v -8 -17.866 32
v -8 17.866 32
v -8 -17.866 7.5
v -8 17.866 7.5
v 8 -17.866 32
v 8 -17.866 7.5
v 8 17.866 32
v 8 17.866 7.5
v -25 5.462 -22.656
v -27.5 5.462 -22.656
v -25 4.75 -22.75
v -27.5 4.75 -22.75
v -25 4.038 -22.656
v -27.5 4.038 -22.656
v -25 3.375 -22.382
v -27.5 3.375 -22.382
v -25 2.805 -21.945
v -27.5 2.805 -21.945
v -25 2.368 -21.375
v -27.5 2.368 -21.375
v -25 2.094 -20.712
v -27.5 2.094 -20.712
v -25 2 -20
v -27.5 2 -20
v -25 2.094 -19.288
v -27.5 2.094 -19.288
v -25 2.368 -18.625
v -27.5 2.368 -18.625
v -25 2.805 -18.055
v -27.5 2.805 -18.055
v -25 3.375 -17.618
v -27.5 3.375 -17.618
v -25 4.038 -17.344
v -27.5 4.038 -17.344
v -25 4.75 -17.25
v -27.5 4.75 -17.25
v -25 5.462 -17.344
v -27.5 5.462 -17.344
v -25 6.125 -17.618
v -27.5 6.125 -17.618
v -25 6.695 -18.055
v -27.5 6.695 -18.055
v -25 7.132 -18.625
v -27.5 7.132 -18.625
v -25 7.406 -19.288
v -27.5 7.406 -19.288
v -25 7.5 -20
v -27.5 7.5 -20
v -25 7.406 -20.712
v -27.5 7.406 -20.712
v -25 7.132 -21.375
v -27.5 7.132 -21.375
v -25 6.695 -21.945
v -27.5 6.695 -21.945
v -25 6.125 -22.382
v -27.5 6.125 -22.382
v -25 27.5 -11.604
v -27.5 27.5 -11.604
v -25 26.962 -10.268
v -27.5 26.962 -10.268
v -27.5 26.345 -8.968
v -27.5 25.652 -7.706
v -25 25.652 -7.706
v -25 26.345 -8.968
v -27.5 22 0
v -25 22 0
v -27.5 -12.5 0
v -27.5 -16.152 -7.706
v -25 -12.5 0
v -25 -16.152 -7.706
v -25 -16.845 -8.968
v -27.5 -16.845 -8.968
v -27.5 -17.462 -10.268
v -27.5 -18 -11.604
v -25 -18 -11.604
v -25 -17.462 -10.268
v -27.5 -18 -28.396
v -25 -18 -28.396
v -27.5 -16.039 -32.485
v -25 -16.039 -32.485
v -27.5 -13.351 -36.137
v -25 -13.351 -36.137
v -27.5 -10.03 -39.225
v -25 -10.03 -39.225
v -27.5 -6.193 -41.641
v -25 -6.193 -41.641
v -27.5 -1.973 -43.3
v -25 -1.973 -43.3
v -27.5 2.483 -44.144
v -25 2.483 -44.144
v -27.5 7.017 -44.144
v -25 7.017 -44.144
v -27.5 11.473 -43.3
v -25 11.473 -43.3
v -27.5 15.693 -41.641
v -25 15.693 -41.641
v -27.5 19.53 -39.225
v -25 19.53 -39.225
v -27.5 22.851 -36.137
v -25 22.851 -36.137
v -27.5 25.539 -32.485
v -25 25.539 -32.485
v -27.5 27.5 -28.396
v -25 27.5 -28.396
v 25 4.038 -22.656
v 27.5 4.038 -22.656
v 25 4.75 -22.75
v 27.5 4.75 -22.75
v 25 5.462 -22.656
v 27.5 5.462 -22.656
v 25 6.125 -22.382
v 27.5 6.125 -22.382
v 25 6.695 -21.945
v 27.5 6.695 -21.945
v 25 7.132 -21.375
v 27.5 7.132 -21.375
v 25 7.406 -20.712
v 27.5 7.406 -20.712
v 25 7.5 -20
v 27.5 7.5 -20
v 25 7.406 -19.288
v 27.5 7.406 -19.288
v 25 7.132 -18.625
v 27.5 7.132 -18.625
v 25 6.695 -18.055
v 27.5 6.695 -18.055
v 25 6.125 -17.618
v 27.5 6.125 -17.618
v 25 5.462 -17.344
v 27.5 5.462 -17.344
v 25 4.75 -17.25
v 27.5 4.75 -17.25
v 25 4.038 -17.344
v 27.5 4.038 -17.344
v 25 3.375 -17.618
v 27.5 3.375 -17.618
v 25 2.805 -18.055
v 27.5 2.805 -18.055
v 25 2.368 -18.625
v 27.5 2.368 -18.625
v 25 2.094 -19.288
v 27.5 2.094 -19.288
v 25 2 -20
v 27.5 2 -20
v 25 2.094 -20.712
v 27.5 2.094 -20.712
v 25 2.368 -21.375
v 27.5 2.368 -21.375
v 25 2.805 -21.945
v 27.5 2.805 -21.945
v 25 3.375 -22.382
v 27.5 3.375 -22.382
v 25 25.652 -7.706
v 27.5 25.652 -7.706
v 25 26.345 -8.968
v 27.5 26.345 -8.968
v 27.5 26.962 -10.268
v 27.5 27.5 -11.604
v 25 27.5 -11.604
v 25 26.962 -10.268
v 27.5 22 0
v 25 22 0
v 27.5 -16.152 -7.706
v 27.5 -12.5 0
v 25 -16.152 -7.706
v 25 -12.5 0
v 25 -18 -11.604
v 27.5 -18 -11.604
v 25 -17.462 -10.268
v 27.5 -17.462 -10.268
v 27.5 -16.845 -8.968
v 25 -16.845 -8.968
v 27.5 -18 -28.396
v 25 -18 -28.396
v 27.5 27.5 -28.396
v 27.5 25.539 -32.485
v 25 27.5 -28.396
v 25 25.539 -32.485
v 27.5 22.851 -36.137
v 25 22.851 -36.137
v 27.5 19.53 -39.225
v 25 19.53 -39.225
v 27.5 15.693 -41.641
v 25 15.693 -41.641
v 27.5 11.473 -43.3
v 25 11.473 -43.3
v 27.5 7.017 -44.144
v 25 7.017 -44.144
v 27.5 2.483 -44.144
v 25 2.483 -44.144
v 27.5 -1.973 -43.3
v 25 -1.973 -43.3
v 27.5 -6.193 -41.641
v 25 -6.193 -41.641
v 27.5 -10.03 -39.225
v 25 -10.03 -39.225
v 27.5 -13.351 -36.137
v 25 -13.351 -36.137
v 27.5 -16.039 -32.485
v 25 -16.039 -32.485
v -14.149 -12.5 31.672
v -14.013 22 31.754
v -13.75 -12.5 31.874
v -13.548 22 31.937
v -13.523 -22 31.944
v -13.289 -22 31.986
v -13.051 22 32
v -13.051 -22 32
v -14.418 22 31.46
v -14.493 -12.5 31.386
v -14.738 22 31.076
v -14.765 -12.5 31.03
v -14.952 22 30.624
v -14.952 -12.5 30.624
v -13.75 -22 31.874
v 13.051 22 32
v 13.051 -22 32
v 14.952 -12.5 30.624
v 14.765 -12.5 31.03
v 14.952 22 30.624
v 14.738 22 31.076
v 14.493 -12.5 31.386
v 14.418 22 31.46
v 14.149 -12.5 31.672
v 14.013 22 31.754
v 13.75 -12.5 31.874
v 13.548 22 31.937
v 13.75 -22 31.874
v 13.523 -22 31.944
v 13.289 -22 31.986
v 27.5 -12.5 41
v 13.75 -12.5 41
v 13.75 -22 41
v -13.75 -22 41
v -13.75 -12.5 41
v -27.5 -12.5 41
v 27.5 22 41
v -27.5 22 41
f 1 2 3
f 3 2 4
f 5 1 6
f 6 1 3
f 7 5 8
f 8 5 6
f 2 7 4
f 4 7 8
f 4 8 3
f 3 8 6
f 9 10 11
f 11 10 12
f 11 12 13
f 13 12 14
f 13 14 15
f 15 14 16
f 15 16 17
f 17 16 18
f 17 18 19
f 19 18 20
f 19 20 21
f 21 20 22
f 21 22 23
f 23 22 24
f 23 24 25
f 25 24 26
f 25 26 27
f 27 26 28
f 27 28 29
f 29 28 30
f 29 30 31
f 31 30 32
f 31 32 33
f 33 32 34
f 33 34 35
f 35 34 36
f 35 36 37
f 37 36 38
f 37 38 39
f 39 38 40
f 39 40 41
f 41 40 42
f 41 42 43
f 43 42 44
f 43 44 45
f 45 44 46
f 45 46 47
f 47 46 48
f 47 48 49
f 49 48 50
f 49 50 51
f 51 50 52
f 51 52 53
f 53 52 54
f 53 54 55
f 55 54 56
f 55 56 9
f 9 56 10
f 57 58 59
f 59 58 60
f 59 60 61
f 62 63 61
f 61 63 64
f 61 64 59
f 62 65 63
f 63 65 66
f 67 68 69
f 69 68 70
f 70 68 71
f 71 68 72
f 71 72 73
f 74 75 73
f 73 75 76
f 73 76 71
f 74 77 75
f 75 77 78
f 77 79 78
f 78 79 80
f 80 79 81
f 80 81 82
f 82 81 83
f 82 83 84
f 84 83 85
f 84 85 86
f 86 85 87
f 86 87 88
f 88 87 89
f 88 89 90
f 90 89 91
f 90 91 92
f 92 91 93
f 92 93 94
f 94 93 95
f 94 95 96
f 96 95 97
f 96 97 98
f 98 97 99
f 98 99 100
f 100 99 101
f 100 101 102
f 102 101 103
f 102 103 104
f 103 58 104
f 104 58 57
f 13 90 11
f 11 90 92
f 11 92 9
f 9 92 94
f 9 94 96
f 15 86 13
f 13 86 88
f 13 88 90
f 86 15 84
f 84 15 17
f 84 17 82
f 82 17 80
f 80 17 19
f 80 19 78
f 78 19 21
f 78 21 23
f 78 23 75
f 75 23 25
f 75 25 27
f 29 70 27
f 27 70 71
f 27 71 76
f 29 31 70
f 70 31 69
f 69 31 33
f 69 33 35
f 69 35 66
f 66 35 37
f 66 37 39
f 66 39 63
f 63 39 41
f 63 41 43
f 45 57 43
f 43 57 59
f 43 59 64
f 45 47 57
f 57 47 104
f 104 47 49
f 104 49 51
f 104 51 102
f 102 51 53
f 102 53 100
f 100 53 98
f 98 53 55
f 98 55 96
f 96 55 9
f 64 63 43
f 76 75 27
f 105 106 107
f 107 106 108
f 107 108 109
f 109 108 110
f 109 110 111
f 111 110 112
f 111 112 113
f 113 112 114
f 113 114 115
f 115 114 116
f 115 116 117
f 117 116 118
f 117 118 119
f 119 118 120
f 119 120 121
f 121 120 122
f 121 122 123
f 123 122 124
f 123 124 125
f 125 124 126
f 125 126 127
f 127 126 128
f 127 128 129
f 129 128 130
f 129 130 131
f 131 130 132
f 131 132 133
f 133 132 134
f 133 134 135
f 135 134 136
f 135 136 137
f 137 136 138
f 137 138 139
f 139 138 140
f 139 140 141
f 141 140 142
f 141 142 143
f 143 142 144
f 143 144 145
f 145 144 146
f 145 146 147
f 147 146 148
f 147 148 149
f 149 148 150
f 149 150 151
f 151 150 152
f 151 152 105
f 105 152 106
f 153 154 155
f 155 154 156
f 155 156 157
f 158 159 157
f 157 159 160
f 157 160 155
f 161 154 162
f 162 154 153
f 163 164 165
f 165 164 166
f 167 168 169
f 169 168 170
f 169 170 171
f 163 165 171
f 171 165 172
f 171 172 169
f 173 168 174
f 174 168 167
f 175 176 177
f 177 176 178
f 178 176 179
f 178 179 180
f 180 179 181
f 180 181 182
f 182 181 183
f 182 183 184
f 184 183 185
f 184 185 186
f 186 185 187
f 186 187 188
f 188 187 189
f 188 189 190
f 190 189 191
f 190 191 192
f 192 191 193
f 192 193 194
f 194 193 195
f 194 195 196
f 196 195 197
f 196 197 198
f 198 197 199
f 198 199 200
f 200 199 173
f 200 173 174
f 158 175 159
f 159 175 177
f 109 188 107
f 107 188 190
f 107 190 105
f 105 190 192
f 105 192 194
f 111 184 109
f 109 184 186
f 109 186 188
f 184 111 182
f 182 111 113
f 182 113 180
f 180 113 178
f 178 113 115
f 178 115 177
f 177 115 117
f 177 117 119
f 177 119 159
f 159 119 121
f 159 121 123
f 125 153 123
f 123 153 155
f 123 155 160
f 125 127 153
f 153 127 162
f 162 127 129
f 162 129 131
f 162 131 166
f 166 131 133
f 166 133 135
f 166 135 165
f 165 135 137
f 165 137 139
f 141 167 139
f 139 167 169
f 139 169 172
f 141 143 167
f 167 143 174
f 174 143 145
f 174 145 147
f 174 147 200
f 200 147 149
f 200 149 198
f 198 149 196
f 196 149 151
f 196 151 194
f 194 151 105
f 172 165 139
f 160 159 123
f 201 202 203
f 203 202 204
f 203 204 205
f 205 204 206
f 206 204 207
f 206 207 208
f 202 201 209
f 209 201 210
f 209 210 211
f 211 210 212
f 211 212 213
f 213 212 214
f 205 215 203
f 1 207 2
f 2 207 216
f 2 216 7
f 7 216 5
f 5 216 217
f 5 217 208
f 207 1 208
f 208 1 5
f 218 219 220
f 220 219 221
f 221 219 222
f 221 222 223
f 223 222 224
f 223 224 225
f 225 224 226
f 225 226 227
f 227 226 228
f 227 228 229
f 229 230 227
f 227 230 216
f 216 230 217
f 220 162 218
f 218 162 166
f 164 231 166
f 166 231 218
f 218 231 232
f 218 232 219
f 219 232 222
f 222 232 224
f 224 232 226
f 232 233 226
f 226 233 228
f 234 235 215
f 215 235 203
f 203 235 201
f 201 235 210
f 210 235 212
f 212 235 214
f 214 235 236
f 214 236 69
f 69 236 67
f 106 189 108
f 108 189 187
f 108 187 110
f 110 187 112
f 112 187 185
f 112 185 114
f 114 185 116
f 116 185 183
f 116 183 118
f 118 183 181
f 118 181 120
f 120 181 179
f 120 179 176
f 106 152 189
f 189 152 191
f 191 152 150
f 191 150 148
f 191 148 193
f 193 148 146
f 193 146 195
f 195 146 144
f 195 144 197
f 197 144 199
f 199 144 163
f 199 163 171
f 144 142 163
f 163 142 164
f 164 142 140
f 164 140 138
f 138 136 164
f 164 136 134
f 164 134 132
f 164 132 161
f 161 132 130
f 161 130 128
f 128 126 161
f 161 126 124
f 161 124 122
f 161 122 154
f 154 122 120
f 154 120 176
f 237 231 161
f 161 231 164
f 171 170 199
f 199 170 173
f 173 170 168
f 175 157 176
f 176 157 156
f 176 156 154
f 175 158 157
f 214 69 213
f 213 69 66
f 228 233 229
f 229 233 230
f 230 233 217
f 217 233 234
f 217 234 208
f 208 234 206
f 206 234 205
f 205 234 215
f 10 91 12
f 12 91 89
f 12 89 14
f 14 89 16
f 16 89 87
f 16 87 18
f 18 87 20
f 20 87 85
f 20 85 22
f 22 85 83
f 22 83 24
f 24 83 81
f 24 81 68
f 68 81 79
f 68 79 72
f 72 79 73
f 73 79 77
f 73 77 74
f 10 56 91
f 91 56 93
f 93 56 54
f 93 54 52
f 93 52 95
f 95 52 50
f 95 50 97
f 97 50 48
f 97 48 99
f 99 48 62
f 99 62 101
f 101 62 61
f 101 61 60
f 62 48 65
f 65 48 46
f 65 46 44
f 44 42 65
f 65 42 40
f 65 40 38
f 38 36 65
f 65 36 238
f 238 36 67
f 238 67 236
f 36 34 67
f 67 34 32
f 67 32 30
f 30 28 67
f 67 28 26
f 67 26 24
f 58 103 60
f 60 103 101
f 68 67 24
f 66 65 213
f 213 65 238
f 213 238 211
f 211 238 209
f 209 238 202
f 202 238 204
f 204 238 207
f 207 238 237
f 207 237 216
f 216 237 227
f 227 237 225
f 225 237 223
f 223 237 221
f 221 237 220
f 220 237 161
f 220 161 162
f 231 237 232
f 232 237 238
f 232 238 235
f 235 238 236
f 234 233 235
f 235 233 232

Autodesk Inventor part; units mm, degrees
sketch "Sketch1" plane through (0, 0, 0) normal (0, 0, 1) x (1, 0, 0)
  line L0 (-27.5, 22) -> (27.5, 22)
  line L1 (27.5, 22) -> (27.5, -22)
  line L2 (27.5, -22) -> (-27.5, -22)
  line L3 (-27.5, -22) -> (-27.5, 22)
  line L4 (-27.5, 22) -> (27.5, -22) construction
  line L5 (27.5, 22) -> (-27.5, -22) construction
  point P0 (0, 0)
  dimension "d0" = 55
  dimension "d1" = 44
extrude "Extrusion1" add sketch "Sketch1" along normal blind 41
ref_plane "Work Plane2" through (-27.5, 22, 41) normal (0, 1, 0) x (1, 0, 0)
sketch "Sketch4" plane through (-27.5, 22, 41) normal (0, 1, 0) x (1, 0, 0)
  line L0 (42, 9) -> (13, 9)
  line L1 (2.5, 41) -> (13, 9)
  line L2 (42, 9) -> (52.5, 41)
  line L3 (2.5, 41) -> (52.5, 41)
  point P0 (27.5, 41)
  point P1 (55, 41)
extrude "Extrusion2" cut sketch "Sketch4" against normal blind 44
ref_plane "Work Plane4" through (-27.5, 22, 41) normal (0, 0, 1) x (1, 0, 0)
sketch "Sketch6" plane through (-27.5, 22, 41) normal (0, 0, 1) x (1, 0, 0)
  line L0 (0, 0) -> (0, -44) projected
  line L1 (0, -44) -> (0, -34.5)
  line L2 (55, -34.5) -> (55, -44)
  line L3 (13.75, -44) -> (13.75, -34.5)
  line L4 (41.25, -44) -> (41.25, -34.5)
  line L5 (0, -34.5) -> (13.75, -34.5)
  line L6 (41.25, -34.5) -> (55, -34.5)
  line L7 (55, -44) -> (41.25, -44)
  line L8 (13.75, -44) -> (0, -44)
  point P0 (27.5, -22)
extrude "Extrusion3" cut sketch "Sketch6" against normal blind 44
fillet "Fillet1" radius 2 1 edges at (14.5, 4.75, 32)
fillet "Fillet2" radius 2 1 edges at (-14.5, 4.75, 32)
sketch "Sketch7" plane through (27.5, 22, 41) normal (1, 0, 0) x (0, 0, -1)
  line L0 (41, 0) -> (41, -34.5)
  line L1 (61, 5.5) -> (52.6036, 5.5)
  line L2 (61, 5.5) -> (69.3964, 5.5)
  line L3 (61, -40) -> (52.6036, -40)
  line L4 (61, -40) -> (69.3964, -40)
  circle A0 centre (61, -17.25) radius 2.75
  line L5 (48.7056, 3.6524) -> (41, 0)
  line L6 (41, -34.5) -> (48.7056, -38.1524)
  arc A1 (69.3964, -40) -> (69.3964, 5.5) centre (61, -17.25) ccw
  arc A2 (52.6036, 5.5) -> (48.7056, 3.6524) centre (61, -17.25) ccw
  arc A3 (48.7056, -38.1524) -> (52.6036, -40) centre (61, -17.25) ccw
  line L7 (41, 0) -> (41, -34.5) projected
  point P0 (0, -22)
  dimension "d25" = 5.5
ref_plane "Work Plane6" through (0, -22, 32) normal (1, 0, 0) x (0, 1, 0)
extrude "Extrusion4" add sketch "Sketch7" against normal blind 2.5
mirror "Mirror1" about plane through (0, -22, 32) normal (1, 0, 0) of "Extrusion4"
sketch "Sketch14" plane through (0, -22, 32) normal (1, 0, 0) x (0, 1, 0)
  point P0 (22, -32)
ref_plane "Work Plane11" through (-13.0513, -22, 32) normal (0, 0, -1) x (-1, 0, 0)
sketch "Sketch15" plane through (-13.0513, -22, 32) normal (0, 0, -1) x (-1, 0, 0)
  line L0 (-21.0513, 39.8663) -> (-5.0513, 39.8663)
  line L1 (-5.0513, 39.8663) -> (-5.0513, 4.1337)
  line L2 (-5.0513, 4.1337) -> (-21.0513, 4.1337)
  line L3 (-21.0513, 4.1337) -> (-21.0513, 39.8663)
  line L4 (-21.0513, 39.8663) -> (-5.0513, 4.1337) construction
  line L5 (-5.0513, 39.8663) -> (-21.0513, 4.1337) construction
  point P0 (-13.0513, 22)
  dimension "d49" = 16
extrude "Extrusion8" add sketch "Sketch15" along normal blind 24.5
sketch "Sketch10" plane through (27.5, 22, 41) normal (0, 0, 1) x (1, 0, 0)
  line L0 (-52, -17.25) -> (-52, -10.25)
  line L1 (-52, -17.25) -> (-52, -24.25)
  line L2 (-52, -10.25) -> (-47.299, -10.25)
  line L3 (-52, -24.25) -> (-47.299, -24.25)
  line L4 (-3, -17.25) -> (-3, -10.25)
  line L5 (-3, -17.25) -> (-3, -24.25)
  line L6 (-3, -10.25) -> (-7.701, -10.25)
  line L7 (-3, -24.25) -> (-7.701, -24.25)
  arc A0 (-47.299, -24.25) -> (-7.701, -24.25) centre (-27.5, -17.25) ccw
  arc A1 (-7.701, -10.25) -> (-47.299, -10.25) centre (-27.5, -17.25) ccw
  circle A2 centre (-27.5, -17.25) radius 2.75
  point P0 (-27.5, -22)
  point P1 (-55, 0)
  dimension "d35" = 5.5
sketch "Sketch11" plane through (-24.5, 11.75, 43.5) normal (0, 0, 1) x (1, 0, 0)
  line L0 (0, 0) -> (49, 0)
  line L1 (49, 0) -> (49, -5)
  line L2 (49, -5) -> (0, -5)
  line L3 (0, -5) -> (0, 0)
  point P0 (24.5, -11.75)
  dimension "d39" = 5
sketch "Sketch13" plane through (-24.5, 6.75, 81.5) normal (0, -1, 0) x (1, 0, 0)
  line L0 (49, 0) -> (64, 0)
  line L1 (49, -38) -> (26.3875, -38) projected
  line L2 (49, 0) -> (49, -38)
  line L3 (64, 0) -> (49, -38)
  line L4 (0, -40.5) -> (0, 0) projected
  line L5 (0, 0) -> (-15, 0)
  line L6 (0, -38) -> (4.701, -38) projected
  line L7 (-15, 0) -> (0, -38)
  line L8 (0, -38) -> (0, 0)
  point P0 (24.5, -81.5)
  dimension "d45" = 15
  dimension "d46" = 15
properties part number "hand"
